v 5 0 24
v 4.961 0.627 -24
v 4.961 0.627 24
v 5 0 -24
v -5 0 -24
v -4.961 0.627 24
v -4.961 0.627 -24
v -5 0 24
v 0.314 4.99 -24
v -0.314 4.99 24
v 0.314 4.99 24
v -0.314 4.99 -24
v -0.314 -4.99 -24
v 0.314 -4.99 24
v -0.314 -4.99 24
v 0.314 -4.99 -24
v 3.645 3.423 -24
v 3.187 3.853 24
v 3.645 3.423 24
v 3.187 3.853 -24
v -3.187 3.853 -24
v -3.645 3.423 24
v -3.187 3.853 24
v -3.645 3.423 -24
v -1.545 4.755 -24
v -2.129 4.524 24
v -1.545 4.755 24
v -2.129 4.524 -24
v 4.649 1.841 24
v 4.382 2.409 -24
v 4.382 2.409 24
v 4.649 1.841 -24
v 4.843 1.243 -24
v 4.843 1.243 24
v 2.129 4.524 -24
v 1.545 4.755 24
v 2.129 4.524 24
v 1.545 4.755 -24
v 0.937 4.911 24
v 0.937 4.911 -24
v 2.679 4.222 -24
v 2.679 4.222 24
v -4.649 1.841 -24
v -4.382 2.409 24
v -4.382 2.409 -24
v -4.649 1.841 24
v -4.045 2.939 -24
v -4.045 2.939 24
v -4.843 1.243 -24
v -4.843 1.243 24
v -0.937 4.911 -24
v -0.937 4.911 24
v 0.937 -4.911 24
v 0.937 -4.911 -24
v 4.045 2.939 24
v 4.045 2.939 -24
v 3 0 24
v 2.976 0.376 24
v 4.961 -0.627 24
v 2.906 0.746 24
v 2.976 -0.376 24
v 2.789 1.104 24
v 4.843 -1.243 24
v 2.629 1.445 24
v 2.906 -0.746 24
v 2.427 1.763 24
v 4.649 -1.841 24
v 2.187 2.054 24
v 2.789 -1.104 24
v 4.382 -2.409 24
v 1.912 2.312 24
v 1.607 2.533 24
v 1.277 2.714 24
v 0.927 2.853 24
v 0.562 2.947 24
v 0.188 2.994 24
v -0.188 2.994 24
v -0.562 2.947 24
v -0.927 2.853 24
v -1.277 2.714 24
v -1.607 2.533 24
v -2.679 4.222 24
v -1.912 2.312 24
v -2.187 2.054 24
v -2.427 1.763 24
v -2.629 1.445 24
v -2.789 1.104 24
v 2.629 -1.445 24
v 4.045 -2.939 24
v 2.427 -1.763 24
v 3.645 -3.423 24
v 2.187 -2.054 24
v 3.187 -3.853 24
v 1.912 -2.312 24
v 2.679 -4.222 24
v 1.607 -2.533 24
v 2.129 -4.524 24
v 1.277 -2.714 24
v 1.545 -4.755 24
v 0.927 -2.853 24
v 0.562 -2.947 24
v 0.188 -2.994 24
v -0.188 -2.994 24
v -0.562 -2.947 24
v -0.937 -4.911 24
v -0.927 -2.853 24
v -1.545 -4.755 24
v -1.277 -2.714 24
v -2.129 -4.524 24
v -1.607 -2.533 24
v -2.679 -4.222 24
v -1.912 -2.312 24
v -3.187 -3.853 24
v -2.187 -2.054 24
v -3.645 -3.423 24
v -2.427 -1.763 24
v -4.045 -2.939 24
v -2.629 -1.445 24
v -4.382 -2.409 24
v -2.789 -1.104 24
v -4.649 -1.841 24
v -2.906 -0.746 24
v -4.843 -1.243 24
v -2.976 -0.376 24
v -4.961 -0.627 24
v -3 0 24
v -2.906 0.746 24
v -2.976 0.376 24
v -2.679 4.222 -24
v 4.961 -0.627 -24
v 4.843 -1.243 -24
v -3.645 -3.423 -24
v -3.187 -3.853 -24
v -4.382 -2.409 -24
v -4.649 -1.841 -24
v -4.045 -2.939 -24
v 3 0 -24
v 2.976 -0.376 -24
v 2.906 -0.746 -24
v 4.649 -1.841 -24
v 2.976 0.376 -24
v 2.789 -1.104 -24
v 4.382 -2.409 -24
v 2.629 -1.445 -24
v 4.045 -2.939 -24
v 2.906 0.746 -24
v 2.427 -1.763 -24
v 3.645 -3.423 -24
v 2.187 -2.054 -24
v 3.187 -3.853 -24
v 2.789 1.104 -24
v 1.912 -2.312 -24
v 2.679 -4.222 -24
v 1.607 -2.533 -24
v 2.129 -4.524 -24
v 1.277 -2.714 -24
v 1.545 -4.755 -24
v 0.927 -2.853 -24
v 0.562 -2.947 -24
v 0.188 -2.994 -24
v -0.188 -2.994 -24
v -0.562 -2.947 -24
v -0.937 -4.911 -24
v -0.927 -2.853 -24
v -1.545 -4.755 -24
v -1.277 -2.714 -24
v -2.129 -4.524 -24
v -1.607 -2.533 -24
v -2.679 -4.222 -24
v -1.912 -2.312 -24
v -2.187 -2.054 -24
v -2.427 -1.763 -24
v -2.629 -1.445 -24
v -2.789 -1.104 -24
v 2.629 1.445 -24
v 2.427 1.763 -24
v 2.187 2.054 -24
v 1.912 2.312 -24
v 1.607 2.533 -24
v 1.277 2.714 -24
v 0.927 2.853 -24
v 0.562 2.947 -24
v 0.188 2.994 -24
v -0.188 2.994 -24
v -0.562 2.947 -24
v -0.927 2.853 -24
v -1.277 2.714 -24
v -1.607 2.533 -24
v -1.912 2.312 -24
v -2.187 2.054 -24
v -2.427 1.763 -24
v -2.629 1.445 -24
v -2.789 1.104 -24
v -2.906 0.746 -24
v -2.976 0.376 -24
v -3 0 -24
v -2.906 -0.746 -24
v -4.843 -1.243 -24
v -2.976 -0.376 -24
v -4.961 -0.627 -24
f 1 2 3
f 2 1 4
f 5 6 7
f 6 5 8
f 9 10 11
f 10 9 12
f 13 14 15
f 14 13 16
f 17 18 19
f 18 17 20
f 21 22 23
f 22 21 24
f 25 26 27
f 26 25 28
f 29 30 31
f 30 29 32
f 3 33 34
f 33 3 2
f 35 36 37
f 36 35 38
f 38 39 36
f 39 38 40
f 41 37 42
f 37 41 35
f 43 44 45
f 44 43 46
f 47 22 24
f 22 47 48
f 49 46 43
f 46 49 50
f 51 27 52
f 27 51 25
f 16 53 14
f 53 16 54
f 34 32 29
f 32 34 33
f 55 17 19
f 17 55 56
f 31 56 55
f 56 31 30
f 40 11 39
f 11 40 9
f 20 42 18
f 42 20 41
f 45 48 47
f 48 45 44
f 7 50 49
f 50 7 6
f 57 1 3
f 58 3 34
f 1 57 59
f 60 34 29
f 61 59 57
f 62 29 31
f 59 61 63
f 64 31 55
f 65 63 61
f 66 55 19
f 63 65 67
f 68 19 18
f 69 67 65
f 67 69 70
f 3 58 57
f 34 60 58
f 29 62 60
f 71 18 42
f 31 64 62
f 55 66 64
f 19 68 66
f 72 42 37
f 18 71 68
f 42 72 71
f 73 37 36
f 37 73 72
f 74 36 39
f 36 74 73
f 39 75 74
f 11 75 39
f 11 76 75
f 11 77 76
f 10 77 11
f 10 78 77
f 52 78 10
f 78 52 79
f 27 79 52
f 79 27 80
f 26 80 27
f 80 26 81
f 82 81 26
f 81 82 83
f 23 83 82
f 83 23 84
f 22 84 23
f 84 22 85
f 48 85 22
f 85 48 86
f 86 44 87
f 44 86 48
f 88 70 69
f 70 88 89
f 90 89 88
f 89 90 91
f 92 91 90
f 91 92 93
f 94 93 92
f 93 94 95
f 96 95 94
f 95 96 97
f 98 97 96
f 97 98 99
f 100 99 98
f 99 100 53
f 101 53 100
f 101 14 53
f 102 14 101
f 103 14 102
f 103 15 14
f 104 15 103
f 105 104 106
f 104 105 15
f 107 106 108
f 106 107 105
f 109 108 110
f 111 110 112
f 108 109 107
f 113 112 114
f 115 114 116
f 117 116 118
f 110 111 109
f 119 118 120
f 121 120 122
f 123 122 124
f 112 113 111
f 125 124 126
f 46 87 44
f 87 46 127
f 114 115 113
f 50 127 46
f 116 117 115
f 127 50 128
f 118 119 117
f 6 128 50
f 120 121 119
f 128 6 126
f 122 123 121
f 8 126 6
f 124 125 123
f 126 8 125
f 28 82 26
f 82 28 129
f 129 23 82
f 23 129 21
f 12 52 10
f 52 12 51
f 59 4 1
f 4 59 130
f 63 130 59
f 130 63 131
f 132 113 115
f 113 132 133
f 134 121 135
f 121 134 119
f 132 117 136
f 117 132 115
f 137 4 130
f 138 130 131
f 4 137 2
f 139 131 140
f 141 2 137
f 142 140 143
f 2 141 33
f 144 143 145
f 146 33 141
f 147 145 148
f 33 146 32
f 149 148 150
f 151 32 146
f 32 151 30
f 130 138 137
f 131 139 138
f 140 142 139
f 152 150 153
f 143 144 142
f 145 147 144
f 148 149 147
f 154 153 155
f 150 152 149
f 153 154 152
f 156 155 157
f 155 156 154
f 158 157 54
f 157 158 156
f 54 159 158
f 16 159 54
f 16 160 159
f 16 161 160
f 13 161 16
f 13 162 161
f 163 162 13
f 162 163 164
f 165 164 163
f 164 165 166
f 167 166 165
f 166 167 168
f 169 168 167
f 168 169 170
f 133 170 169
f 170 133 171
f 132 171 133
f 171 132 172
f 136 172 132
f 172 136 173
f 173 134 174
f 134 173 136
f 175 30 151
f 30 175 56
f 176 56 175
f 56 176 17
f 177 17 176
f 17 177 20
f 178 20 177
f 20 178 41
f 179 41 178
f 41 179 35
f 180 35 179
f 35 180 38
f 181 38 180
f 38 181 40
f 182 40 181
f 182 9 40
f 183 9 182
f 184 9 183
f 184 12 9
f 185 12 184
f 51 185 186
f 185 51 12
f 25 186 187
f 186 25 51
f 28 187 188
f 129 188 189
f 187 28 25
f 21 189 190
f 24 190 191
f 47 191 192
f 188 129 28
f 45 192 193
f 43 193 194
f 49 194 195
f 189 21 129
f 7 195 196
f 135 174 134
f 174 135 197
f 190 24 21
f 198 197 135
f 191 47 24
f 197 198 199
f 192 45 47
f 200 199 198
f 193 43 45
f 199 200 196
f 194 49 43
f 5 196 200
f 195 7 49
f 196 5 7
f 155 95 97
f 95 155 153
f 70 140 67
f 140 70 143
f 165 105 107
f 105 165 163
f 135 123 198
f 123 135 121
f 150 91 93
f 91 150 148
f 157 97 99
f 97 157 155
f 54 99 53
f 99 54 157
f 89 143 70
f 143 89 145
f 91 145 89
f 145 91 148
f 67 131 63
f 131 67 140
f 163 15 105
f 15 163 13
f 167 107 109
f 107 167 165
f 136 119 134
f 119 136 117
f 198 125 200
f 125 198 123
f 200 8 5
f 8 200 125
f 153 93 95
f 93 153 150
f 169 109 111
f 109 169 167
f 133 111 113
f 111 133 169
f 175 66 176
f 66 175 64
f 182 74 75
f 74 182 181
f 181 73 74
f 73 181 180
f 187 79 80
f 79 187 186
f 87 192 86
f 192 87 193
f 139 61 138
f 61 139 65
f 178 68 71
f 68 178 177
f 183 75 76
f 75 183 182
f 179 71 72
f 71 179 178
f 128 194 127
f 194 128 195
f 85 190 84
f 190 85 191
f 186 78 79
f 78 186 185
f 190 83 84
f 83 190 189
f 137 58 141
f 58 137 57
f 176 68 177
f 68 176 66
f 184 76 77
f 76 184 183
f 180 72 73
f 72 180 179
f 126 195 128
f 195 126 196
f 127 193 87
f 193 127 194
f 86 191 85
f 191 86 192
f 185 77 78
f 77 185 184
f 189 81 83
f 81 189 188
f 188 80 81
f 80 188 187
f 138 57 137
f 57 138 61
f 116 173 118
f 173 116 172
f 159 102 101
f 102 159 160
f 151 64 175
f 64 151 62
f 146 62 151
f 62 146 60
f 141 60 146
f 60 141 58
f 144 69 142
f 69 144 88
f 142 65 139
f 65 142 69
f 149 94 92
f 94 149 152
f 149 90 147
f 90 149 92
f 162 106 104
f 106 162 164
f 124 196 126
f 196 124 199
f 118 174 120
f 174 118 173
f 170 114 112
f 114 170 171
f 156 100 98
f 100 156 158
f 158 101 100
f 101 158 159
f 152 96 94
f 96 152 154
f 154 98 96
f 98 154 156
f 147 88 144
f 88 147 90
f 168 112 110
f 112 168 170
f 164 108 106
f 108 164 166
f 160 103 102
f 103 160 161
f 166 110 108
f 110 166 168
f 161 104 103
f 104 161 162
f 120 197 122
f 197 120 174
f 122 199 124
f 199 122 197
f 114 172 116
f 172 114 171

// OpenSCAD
$fn = 50;


difference() {
	union() {
		translate(v = [0, 0, -24.0000000000]) {
			cylinder(h = 48, r = 5.0000000000);
		}
	}
	union() {
		translate(v = [0, 0, -100.0000000000]) {
			cylinder(h = 200, r = 3);
		}
	}
}
